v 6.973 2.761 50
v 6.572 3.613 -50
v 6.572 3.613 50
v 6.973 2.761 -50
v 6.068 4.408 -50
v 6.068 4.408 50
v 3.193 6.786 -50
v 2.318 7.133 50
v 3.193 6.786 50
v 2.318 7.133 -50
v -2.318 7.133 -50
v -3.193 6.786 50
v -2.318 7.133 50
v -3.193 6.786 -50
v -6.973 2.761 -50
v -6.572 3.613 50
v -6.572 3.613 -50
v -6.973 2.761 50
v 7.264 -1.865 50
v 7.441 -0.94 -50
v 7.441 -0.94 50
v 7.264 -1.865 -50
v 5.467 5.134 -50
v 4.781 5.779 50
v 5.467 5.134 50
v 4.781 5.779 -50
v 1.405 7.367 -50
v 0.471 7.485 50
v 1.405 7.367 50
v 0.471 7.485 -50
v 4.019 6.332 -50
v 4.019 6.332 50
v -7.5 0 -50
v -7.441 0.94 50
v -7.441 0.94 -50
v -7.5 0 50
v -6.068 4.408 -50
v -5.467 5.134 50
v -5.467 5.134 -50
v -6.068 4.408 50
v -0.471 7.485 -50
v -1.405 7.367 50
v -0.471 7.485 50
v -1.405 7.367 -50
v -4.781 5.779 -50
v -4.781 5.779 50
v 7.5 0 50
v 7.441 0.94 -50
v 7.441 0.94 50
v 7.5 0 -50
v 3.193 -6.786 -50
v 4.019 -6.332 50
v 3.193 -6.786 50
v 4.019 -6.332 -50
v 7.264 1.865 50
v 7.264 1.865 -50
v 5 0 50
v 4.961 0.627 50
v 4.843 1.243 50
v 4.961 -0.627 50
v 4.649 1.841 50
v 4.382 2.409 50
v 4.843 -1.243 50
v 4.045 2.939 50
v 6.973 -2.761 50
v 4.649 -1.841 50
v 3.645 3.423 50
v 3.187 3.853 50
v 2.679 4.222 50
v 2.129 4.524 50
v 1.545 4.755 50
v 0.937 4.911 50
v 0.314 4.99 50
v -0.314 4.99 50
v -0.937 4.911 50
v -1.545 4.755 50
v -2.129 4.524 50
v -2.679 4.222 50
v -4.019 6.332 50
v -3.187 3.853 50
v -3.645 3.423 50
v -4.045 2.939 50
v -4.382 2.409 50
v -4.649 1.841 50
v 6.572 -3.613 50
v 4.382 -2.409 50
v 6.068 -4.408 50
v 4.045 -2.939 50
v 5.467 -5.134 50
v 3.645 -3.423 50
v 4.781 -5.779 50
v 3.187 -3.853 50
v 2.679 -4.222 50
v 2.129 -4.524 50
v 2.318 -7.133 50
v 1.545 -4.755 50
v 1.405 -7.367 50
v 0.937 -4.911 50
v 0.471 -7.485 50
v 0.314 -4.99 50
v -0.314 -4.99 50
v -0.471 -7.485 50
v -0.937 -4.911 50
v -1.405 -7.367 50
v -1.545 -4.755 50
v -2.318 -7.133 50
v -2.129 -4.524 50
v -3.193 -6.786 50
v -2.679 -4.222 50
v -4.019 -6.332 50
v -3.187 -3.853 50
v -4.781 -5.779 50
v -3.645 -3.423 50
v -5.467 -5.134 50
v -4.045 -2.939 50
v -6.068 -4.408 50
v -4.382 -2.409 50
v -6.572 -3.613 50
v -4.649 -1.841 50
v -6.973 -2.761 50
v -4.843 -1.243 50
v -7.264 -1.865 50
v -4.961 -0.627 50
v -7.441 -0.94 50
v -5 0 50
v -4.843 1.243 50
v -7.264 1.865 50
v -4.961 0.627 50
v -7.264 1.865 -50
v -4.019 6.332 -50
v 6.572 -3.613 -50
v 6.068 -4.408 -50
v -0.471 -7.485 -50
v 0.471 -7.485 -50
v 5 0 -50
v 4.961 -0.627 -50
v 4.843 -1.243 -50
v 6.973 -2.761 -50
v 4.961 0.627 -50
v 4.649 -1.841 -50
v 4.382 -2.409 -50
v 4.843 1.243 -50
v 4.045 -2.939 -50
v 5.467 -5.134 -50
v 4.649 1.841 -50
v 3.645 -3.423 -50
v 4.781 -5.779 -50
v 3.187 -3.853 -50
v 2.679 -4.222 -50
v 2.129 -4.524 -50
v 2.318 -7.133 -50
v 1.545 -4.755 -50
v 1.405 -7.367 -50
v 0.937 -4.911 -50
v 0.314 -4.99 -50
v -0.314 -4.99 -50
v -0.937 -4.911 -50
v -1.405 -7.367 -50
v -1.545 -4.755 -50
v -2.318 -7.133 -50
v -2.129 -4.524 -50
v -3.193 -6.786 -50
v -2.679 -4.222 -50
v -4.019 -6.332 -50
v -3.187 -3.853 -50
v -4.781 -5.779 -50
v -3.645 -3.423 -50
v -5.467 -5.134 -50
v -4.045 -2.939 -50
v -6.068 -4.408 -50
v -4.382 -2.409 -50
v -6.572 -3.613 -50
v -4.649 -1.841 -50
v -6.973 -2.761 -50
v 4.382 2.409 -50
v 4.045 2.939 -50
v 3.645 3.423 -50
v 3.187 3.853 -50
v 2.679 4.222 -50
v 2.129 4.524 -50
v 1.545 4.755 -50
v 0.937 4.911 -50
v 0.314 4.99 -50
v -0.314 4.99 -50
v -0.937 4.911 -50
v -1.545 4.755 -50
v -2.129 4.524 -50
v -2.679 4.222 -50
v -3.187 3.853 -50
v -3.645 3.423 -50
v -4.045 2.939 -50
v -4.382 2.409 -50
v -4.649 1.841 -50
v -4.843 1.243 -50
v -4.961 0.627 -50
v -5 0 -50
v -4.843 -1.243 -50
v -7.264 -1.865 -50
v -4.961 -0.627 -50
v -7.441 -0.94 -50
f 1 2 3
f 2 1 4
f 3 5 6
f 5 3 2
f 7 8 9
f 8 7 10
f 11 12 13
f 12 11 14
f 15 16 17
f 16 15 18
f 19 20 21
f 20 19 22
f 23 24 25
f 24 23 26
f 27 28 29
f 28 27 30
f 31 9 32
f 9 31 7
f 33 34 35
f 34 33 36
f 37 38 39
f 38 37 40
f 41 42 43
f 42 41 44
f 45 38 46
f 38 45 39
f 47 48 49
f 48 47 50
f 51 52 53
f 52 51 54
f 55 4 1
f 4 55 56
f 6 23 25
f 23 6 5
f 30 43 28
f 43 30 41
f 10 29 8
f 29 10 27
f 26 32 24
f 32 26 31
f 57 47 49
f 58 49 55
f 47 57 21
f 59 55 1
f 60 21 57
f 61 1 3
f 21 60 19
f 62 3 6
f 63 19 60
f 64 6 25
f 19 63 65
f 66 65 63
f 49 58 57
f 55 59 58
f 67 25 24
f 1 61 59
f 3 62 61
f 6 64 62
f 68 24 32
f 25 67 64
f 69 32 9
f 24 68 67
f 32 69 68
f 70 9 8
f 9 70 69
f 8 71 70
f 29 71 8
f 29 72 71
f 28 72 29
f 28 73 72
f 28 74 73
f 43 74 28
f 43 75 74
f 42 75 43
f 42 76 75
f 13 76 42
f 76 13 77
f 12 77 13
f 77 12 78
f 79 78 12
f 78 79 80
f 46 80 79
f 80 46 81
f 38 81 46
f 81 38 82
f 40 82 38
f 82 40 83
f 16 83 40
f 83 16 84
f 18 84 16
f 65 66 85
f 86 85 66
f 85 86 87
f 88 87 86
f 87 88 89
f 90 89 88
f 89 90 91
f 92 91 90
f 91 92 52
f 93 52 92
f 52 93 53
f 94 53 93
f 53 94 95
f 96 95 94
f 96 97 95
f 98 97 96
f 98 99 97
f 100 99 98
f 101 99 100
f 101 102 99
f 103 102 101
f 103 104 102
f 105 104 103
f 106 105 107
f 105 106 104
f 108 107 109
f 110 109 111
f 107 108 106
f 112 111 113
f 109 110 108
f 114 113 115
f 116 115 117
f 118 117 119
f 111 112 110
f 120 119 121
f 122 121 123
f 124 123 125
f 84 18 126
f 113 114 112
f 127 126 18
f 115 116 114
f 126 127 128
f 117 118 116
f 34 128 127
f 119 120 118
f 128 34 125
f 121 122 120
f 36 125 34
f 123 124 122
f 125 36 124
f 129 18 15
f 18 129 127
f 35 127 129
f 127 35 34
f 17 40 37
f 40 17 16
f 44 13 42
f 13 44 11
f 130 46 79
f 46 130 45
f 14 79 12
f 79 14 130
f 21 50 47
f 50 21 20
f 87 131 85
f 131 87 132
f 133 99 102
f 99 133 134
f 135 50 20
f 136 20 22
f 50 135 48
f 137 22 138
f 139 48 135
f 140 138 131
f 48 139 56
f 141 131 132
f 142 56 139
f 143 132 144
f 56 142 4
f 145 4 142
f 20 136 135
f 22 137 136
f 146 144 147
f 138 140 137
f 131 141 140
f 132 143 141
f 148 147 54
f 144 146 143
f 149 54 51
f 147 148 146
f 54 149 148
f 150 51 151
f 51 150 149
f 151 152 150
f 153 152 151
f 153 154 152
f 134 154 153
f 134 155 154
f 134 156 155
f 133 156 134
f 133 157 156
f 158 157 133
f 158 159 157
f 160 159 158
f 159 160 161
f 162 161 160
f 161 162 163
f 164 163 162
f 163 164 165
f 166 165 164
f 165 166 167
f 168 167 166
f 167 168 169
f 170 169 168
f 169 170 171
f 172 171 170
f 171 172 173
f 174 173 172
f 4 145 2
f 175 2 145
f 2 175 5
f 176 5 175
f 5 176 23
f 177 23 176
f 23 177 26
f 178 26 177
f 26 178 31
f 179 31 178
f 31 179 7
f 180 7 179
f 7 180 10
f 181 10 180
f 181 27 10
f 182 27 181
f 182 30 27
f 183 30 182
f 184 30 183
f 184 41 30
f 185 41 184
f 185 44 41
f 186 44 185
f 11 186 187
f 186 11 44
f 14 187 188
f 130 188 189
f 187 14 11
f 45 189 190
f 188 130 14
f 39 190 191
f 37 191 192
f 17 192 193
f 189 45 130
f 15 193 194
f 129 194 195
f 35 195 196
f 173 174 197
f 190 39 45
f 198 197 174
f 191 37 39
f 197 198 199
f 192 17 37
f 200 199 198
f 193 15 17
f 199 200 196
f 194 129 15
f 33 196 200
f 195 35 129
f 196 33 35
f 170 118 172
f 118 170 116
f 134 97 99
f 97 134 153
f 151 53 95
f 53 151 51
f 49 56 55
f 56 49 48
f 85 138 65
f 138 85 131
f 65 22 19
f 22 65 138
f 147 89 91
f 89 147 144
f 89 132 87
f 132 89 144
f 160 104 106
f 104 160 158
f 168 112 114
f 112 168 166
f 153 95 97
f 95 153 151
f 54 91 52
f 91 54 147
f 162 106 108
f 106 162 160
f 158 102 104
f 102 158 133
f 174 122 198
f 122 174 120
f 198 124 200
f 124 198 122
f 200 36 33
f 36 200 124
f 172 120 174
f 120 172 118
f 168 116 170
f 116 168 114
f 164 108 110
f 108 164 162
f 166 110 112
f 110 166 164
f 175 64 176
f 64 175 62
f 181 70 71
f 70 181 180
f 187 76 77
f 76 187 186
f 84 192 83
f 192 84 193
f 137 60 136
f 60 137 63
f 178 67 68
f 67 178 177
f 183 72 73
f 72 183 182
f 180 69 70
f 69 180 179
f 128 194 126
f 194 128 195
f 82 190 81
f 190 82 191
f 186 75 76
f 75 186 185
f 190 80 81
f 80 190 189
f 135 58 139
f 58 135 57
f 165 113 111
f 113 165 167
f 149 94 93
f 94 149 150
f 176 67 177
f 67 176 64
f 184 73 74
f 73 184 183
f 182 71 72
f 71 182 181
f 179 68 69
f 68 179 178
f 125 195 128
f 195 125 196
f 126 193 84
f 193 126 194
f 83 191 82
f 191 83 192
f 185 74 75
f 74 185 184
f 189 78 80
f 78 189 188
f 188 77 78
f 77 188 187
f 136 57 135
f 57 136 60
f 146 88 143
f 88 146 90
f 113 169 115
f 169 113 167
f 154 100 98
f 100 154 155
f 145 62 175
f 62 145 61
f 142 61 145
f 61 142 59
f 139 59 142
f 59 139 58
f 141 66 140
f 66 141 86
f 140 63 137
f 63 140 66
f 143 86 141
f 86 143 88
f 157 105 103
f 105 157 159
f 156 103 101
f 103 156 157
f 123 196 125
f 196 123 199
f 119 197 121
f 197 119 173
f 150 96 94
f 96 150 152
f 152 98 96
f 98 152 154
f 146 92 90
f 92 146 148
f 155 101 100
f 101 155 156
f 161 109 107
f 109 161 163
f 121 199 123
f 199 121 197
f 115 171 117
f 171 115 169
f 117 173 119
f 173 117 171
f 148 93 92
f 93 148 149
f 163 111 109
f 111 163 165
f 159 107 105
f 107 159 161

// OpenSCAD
$fn = 50;


difference() {
	union() {
		translate(v = [0, 0, -50.0000000000]) {
			cylinder(h = 100, r = 7.5000000000);
		}
	}
	union() {
		translate(v = [0, 0, -100.0000000000]) {
			cylinder(h = 200, r = 5);
		}
	}
}
